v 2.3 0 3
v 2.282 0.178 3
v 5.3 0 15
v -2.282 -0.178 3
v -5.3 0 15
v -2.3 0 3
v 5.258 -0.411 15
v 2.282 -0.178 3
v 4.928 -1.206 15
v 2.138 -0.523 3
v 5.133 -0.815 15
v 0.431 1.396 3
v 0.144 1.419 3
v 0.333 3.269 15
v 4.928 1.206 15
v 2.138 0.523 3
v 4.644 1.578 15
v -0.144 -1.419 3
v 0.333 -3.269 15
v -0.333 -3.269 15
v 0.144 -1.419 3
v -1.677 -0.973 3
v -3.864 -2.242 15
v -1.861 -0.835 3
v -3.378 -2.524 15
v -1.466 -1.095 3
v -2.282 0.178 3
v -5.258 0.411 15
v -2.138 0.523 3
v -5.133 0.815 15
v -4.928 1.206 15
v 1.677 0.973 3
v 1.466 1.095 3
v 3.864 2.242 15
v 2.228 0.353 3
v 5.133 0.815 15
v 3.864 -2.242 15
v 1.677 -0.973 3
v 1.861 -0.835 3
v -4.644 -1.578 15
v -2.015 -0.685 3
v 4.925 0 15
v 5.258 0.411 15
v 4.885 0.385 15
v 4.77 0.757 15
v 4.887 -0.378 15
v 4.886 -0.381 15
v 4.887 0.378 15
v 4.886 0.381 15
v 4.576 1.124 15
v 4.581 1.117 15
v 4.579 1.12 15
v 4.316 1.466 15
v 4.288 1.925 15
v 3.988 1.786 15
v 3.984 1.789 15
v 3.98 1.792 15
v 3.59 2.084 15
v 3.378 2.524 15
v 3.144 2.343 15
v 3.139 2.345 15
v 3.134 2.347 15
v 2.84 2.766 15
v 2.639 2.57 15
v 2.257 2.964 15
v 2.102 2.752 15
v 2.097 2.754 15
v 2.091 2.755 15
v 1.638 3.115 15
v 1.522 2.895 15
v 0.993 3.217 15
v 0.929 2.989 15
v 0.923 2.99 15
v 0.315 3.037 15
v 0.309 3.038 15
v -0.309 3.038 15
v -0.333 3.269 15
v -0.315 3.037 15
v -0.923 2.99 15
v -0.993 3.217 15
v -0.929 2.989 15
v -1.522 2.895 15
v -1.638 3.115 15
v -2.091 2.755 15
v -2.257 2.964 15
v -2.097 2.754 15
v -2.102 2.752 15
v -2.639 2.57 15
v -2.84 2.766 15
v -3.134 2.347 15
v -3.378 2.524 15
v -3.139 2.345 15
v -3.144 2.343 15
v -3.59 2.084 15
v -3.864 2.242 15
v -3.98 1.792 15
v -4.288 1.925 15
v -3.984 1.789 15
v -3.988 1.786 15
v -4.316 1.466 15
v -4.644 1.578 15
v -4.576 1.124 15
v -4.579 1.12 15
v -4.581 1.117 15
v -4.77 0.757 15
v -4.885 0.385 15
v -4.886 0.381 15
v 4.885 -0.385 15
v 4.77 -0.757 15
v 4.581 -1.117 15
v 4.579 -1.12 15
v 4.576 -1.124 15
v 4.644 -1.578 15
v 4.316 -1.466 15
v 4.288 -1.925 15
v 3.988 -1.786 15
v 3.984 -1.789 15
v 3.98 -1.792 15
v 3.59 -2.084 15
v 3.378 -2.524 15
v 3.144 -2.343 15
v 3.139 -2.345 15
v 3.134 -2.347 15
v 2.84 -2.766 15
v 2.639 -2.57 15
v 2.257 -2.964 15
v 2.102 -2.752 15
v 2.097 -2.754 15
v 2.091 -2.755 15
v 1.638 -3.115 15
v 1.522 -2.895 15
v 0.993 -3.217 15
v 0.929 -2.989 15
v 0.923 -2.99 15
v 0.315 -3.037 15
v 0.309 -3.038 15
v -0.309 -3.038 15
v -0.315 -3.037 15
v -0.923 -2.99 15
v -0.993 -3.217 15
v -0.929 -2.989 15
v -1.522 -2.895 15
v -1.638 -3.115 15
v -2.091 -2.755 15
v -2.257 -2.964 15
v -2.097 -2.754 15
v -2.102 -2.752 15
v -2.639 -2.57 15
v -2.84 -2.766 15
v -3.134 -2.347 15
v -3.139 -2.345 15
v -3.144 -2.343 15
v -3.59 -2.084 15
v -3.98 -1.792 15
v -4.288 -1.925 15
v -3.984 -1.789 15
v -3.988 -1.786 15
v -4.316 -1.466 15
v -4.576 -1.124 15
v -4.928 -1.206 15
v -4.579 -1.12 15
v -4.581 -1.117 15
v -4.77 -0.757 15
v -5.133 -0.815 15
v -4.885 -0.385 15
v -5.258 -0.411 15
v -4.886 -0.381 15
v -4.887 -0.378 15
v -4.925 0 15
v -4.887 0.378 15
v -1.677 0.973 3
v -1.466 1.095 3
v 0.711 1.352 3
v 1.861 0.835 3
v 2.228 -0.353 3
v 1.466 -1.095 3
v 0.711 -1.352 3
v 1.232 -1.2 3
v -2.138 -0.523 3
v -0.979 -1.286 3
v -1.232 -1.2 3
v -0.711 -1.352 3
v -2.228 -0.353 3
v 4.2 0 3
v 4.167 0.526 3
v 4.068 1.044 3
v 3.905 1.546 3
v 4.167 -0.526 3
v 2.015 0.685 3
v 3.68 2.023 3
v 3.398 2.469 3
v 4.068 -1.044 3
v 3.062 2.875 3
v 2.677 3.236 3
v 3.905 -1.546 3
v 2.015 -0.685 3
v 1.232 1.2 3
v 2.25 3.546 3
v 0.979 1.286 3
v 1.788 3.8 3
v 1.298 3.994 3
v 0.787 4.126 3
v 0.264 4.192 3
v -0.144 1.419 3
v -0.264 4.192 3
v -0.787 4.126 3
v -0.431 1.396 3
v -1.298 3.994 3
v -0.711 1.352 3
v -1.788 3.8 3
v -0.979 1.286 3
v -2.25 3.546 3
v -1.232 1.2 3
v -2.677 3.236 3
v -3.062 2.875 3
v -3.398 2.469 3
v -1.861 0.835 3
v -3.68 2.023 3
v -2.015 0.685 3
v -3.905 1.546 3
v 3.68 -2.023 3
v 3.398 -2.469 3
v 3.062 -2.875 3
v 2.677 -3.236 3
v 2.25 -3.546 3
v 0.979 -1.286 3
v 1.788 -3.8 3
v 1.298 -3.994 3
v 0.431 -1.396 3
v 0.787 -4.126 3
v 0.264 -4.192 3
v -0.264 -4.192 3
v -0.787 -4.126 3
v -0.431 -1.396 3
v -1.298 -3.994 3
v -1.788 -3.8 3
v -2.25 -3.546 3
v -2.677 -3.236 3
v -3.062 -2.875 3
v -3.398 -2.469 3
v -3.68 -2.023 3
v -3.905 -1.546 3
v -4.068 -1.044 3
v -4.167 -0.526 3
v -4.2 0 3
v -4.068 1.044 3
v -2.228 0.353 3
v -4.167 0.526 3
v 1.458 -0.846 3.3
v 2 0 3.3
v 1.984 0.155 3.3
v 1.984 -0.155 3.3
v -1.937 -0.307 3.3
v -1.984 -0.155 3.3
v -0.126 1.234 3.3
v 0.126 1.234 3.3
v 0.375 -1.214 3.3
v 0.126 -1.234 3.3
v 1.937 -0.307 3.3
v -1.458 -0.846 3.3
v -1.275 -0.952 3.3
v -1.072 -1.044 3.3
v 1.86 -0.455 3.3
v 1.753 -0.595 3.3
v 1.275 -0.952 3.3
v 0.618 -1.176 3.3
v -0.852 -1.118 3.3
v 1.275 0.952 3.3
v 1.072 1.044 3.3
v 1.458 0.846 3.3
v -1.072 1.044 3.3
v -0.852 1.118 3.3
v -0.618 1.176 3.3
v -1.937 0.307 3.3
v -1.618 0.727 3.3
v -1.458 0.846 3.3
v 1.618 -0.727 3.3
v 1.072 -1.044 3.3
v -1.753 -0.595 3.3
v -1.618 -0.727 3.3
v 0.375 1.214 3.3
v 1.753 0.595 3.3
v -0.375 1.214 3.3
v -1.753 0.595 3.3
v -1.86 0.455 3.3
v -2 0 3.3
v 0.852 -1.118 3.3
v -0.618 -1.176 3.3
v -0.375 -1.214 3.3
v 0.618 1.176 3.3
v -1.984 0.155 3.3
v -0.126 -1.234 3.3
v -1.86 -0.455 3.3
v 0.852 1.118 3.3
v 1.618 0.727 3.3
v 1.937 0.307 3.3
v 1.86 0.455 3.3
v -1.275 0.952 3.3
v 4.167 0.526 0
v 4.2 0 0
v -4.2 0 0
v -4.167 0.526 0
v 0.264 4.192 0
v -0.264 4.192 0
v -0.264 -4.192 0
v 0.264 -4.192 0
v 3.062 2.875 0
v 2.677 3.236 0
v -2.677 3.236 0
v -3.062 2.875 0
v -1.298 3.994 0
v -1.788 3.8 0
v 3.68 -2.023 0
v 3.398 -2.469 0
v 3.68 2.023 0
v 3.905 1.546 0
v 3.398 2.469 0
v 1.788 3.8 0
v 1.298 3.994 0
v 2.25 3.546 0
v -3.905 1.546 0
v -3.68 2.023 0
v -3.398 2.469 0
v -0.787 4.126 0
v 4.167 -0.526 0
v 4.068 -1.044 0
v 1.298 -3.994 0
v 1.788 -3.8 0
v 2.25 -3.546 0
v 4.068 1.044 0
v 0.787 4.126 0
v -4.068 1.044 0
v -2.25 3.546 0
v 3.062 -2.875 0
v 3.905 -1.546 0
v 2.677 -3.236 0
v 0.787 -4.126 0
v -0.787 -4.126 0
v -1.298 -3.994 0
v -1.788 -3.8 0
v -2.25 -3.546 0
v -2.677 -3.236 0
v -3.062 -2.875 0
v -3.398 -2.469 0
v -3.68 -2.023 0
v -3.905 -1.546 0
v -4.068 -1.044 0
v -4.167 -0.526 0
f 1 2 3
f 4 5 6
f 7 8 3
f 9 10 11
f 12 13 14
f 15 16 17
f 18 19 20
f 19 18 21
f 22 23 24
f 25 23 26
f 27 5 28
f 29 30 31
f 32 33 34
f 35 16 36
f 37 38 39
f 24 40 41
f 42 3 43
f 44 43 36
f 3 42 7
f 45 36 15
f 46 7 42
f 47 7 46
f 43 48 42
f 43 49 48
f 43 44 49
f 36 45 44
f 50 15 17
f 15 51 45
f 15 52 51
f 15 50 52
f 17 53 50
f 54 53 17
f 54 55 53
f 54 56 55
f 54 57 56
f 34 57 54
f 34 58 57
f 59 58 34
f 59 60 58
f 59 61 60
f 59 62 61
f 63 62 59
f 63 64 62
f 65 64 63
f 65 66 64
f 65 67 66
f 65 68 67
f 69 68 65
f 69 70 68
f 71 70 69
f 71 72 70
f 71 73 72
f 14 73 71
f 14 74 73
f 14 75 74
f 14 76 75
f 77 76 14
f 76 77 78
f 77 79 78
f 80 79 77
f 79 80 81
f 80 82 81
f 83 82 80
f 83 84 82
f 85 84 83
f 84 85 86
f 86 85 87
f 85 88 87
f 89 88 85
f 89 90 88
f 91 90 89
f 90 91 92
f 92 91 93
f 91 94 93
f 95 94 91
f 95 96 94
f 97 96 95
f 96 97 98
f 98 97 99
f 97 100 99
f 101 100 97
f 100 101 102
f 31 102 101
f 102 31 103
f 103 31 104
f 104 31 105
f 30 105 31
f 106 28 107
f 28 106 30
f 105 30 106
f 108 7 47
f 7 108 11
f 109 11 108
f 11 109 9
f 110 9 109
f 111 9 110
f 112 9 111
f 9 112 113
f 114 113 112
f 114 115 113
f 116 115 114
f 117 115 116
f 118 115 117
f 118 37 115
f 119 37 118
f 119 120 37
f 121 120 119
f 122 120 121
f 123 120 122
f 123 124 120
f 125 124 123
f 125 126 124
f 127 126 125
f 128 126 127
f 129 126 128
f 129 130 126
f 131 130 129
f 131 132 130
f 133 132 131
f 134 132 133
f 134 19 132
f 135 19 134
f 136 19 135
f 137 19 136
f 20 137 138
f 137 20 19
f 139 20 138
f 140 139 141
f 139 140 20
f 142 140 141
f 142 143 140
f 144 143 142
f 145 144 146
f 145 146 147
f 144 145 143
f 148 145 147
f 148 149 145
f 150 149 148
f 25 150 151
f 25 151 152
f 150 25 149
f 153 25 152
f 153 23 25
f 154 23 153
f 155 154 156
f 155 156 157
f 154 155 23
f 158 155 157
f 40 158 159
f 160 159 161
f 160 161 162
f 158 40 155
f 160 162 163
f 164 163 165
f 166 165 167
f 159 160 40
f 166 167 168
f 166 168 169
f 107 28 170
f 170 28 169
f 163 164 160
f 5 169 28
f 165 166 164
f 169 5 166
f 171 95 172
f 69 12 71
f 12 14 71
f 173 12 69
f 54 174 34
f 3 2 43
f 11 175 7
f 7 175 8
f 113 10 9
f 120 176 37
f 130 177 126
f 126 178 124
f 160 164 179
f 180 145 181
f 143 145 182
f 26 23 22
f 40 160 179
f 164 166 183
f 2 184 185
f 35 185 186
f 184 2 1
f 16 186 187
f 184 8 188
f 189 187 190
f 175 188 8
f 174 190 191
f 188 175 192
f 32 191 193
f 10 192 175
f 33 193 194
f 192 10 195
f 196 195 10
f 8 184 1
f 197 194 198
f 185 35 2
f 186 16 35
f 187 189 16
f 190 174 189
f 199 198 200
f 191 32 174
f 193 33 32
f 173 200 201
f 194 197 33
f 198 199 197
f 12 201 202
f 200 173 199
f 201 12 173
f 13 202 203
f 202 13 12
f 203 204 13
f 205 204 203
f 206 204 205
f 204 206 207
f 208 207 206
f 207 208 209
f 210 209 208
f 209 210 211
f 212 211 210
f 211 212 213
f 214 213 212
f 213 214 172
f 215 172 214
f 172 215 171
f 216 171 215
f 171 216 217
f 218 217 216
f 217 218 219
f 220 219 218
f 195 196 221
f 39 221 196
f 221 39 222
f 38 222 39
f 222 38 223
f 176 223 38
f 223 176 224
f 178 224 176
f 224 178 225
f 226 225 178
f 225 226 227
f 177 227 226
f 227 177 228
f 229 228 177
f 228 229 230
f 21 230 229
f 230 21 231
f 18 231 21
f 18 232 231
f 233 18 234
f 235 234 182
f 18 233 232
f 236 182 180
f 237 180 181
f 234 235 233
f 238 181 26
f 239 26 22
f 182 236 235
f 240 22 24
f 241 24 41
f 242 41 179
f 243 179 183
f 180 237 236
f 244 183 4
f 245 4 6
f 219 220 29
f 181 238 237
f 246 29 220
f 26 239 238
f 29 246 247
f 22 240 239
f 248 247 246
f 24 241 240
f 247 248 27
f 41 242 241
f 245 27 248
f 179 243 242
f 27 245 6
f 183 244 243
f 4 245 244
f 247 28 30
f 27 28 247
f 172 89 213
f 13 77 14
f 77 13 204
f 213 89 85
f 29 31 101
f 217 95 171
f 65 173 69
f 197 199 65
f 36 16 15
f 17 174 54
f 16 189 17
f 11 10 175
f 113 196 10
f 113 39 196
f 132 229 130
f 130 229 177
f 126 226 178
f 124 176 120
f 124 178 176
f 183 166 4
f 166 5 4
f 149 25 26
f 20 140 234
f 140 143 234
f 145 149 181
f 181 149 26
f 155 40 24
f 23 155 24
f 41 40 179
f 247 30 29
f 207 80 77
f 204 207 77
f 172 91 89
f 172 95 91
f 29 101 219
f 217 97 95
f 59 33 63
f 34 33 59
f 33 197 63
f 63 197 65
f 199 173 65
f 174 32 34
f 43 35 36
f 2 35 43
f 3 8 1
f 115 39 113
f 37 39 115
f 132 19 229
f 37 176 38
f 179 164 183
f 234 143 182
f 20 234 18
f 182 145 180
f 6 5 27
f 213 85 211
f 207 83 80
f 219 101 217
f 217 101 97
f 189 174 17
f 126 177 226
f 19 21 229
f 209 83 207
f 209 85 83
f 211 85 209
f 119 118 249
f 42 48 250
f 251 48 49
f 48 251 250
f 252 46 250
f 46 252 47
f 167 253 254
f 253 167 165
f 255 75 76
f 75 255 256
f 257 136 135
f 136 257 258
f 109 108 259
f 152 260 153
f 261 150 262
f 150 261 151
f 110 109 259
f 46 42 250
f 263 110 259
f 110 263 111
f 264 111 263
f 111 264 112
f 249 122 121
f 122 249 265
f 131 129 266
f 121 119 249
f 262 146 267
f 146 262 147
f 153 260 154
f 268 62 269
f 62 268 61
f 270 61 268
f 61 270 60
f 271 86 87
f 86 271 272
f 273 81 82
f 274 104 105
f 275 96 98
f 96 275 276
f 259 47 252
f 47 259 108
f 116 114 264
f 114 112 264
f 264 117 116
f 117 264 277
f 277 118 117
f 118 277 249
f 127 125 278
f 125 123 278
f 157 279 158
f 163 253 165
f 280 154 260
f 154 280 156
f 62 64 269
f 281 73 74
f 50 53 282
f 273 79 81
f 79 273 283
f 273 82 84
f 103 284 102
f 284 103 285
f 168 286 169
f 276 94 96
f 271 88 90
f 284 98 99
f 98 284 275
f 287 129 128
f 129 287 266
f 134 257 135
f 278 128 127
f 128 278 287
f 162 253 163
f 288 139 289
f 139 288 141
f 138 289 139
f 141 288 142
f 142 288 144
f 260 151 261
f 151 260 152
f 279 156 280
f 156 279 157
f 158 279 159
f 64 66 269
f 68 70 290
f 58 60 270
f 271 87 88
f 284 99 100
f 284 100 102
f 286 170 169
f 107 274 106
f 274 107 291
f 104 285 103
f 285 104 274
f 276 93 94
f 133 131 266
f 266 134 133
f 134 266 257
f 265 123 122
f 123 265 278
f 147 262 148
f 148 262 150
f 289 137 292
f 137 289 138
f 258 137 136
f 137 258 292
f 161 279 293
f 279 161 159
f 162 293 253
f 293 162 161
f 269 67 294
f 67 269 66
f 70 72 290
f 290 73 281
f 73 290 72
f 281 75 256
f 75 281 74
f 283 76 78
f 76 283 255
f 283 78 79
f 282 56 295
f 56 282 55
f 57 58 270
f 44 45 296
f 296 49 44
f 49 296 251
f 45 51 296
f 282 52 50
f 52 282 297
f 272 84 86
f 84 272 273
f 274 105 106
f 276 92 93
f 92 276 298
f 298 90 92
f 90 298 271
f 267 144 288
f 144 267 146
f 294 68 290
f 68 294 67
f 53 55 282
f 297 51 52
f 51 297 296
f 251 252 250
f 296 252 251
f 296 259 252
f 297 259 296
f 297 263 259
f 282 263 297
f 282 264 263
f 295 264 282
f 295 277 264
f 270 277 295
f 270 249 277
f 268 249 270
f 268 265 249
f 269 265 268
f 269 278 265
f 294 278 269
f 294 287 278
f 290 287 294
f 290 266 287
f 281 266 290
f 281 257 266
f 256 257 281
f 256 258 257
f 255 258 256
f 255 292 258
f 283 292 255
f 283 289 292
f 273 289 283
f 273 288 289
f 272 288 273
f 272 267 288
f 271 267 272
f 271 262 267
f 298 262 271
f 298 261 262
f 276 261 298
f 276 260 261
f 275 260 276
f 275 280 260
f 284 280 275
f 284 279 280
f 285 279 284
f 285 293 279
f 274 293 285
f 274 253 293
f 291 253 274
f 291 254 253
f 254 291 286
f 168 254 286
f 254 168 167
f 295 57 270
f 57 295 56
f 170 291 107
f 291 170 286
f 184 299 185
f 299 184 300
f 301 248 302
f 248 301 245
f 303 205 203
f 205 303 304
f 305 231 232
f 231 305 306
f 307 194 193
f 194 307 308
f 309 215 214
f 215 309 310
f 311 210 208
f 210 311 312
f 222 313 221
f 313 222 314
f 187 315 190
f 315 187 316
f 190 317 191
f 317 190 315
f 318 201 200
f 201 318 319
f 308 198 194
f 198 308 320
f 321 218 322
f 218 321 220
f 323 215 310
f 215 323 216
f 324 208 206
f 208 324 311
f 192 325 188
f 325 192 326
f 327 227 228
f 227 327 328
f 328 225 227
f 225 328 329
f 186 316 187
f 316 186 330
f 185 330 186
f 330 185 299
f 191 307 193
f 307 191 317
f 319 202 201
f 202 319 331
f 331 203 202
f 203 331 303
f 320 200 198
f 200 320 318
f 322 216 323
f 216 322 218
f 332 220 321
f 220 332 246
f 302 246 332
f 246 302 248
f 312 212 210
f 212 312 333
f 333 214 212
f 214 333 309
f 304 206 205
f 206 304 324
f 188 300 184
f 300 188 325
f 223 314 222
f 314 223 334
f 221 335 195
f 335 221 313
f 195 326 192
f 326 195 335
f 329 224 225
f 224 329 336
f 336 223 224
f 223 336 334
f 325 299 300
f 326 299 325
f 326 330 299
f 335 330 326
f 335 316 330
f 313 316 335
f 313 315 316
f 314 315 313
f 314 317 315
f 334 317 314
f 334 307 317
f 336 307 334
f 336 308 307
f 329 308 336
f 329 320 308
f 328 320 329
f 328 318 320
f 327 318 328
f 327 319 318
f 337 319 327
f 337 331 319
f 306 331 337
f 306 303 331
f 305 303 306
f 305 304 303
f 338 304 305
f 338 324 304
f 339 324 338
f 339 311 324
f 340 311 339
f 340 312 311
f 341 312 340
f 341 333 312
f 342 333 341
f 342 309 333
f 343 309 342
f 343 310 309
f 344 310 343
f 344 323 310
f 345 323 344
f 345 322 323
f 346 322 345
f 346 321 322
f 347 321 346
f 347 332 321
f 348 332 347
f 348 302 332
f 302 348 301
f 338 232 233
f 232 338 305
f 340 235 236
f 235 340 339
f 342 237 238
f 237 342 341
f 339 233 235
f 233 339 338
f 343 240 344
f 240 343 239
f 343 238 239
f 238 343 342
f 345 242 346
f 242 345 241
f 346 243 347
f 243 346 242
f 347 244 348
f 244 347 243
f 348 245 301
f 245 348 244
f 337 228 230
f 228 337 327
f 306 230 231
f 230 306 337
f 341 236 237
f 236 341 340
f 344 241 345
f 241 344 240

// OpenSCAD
$fn=50;

module sampleholder(height=15,
                    upper_radius=10,
                    lower_radius=2,
                    wall_thickness=0.3,
                    pin_height=5,
                    ) {
    // Bottom; connector to sample holder
    cylinder(d=8.4, h=pin_height); 
    // Cup
    translate([0,0,pin_height])
        scale([1,.618,1]) {
            difference() {
                cylinder(h=height,
                         r1=lower_radius+wall_thickness,
                         r2=upper_radius+wall_thickness);
                translate([0,0,wall_thickness])
                cylinder(h=height,
                         r1=lower_radius,
                         r2=upper_radius);
                }
            }
        }

sampleholder(height=12, upper_radius=5, pin_height=3);
